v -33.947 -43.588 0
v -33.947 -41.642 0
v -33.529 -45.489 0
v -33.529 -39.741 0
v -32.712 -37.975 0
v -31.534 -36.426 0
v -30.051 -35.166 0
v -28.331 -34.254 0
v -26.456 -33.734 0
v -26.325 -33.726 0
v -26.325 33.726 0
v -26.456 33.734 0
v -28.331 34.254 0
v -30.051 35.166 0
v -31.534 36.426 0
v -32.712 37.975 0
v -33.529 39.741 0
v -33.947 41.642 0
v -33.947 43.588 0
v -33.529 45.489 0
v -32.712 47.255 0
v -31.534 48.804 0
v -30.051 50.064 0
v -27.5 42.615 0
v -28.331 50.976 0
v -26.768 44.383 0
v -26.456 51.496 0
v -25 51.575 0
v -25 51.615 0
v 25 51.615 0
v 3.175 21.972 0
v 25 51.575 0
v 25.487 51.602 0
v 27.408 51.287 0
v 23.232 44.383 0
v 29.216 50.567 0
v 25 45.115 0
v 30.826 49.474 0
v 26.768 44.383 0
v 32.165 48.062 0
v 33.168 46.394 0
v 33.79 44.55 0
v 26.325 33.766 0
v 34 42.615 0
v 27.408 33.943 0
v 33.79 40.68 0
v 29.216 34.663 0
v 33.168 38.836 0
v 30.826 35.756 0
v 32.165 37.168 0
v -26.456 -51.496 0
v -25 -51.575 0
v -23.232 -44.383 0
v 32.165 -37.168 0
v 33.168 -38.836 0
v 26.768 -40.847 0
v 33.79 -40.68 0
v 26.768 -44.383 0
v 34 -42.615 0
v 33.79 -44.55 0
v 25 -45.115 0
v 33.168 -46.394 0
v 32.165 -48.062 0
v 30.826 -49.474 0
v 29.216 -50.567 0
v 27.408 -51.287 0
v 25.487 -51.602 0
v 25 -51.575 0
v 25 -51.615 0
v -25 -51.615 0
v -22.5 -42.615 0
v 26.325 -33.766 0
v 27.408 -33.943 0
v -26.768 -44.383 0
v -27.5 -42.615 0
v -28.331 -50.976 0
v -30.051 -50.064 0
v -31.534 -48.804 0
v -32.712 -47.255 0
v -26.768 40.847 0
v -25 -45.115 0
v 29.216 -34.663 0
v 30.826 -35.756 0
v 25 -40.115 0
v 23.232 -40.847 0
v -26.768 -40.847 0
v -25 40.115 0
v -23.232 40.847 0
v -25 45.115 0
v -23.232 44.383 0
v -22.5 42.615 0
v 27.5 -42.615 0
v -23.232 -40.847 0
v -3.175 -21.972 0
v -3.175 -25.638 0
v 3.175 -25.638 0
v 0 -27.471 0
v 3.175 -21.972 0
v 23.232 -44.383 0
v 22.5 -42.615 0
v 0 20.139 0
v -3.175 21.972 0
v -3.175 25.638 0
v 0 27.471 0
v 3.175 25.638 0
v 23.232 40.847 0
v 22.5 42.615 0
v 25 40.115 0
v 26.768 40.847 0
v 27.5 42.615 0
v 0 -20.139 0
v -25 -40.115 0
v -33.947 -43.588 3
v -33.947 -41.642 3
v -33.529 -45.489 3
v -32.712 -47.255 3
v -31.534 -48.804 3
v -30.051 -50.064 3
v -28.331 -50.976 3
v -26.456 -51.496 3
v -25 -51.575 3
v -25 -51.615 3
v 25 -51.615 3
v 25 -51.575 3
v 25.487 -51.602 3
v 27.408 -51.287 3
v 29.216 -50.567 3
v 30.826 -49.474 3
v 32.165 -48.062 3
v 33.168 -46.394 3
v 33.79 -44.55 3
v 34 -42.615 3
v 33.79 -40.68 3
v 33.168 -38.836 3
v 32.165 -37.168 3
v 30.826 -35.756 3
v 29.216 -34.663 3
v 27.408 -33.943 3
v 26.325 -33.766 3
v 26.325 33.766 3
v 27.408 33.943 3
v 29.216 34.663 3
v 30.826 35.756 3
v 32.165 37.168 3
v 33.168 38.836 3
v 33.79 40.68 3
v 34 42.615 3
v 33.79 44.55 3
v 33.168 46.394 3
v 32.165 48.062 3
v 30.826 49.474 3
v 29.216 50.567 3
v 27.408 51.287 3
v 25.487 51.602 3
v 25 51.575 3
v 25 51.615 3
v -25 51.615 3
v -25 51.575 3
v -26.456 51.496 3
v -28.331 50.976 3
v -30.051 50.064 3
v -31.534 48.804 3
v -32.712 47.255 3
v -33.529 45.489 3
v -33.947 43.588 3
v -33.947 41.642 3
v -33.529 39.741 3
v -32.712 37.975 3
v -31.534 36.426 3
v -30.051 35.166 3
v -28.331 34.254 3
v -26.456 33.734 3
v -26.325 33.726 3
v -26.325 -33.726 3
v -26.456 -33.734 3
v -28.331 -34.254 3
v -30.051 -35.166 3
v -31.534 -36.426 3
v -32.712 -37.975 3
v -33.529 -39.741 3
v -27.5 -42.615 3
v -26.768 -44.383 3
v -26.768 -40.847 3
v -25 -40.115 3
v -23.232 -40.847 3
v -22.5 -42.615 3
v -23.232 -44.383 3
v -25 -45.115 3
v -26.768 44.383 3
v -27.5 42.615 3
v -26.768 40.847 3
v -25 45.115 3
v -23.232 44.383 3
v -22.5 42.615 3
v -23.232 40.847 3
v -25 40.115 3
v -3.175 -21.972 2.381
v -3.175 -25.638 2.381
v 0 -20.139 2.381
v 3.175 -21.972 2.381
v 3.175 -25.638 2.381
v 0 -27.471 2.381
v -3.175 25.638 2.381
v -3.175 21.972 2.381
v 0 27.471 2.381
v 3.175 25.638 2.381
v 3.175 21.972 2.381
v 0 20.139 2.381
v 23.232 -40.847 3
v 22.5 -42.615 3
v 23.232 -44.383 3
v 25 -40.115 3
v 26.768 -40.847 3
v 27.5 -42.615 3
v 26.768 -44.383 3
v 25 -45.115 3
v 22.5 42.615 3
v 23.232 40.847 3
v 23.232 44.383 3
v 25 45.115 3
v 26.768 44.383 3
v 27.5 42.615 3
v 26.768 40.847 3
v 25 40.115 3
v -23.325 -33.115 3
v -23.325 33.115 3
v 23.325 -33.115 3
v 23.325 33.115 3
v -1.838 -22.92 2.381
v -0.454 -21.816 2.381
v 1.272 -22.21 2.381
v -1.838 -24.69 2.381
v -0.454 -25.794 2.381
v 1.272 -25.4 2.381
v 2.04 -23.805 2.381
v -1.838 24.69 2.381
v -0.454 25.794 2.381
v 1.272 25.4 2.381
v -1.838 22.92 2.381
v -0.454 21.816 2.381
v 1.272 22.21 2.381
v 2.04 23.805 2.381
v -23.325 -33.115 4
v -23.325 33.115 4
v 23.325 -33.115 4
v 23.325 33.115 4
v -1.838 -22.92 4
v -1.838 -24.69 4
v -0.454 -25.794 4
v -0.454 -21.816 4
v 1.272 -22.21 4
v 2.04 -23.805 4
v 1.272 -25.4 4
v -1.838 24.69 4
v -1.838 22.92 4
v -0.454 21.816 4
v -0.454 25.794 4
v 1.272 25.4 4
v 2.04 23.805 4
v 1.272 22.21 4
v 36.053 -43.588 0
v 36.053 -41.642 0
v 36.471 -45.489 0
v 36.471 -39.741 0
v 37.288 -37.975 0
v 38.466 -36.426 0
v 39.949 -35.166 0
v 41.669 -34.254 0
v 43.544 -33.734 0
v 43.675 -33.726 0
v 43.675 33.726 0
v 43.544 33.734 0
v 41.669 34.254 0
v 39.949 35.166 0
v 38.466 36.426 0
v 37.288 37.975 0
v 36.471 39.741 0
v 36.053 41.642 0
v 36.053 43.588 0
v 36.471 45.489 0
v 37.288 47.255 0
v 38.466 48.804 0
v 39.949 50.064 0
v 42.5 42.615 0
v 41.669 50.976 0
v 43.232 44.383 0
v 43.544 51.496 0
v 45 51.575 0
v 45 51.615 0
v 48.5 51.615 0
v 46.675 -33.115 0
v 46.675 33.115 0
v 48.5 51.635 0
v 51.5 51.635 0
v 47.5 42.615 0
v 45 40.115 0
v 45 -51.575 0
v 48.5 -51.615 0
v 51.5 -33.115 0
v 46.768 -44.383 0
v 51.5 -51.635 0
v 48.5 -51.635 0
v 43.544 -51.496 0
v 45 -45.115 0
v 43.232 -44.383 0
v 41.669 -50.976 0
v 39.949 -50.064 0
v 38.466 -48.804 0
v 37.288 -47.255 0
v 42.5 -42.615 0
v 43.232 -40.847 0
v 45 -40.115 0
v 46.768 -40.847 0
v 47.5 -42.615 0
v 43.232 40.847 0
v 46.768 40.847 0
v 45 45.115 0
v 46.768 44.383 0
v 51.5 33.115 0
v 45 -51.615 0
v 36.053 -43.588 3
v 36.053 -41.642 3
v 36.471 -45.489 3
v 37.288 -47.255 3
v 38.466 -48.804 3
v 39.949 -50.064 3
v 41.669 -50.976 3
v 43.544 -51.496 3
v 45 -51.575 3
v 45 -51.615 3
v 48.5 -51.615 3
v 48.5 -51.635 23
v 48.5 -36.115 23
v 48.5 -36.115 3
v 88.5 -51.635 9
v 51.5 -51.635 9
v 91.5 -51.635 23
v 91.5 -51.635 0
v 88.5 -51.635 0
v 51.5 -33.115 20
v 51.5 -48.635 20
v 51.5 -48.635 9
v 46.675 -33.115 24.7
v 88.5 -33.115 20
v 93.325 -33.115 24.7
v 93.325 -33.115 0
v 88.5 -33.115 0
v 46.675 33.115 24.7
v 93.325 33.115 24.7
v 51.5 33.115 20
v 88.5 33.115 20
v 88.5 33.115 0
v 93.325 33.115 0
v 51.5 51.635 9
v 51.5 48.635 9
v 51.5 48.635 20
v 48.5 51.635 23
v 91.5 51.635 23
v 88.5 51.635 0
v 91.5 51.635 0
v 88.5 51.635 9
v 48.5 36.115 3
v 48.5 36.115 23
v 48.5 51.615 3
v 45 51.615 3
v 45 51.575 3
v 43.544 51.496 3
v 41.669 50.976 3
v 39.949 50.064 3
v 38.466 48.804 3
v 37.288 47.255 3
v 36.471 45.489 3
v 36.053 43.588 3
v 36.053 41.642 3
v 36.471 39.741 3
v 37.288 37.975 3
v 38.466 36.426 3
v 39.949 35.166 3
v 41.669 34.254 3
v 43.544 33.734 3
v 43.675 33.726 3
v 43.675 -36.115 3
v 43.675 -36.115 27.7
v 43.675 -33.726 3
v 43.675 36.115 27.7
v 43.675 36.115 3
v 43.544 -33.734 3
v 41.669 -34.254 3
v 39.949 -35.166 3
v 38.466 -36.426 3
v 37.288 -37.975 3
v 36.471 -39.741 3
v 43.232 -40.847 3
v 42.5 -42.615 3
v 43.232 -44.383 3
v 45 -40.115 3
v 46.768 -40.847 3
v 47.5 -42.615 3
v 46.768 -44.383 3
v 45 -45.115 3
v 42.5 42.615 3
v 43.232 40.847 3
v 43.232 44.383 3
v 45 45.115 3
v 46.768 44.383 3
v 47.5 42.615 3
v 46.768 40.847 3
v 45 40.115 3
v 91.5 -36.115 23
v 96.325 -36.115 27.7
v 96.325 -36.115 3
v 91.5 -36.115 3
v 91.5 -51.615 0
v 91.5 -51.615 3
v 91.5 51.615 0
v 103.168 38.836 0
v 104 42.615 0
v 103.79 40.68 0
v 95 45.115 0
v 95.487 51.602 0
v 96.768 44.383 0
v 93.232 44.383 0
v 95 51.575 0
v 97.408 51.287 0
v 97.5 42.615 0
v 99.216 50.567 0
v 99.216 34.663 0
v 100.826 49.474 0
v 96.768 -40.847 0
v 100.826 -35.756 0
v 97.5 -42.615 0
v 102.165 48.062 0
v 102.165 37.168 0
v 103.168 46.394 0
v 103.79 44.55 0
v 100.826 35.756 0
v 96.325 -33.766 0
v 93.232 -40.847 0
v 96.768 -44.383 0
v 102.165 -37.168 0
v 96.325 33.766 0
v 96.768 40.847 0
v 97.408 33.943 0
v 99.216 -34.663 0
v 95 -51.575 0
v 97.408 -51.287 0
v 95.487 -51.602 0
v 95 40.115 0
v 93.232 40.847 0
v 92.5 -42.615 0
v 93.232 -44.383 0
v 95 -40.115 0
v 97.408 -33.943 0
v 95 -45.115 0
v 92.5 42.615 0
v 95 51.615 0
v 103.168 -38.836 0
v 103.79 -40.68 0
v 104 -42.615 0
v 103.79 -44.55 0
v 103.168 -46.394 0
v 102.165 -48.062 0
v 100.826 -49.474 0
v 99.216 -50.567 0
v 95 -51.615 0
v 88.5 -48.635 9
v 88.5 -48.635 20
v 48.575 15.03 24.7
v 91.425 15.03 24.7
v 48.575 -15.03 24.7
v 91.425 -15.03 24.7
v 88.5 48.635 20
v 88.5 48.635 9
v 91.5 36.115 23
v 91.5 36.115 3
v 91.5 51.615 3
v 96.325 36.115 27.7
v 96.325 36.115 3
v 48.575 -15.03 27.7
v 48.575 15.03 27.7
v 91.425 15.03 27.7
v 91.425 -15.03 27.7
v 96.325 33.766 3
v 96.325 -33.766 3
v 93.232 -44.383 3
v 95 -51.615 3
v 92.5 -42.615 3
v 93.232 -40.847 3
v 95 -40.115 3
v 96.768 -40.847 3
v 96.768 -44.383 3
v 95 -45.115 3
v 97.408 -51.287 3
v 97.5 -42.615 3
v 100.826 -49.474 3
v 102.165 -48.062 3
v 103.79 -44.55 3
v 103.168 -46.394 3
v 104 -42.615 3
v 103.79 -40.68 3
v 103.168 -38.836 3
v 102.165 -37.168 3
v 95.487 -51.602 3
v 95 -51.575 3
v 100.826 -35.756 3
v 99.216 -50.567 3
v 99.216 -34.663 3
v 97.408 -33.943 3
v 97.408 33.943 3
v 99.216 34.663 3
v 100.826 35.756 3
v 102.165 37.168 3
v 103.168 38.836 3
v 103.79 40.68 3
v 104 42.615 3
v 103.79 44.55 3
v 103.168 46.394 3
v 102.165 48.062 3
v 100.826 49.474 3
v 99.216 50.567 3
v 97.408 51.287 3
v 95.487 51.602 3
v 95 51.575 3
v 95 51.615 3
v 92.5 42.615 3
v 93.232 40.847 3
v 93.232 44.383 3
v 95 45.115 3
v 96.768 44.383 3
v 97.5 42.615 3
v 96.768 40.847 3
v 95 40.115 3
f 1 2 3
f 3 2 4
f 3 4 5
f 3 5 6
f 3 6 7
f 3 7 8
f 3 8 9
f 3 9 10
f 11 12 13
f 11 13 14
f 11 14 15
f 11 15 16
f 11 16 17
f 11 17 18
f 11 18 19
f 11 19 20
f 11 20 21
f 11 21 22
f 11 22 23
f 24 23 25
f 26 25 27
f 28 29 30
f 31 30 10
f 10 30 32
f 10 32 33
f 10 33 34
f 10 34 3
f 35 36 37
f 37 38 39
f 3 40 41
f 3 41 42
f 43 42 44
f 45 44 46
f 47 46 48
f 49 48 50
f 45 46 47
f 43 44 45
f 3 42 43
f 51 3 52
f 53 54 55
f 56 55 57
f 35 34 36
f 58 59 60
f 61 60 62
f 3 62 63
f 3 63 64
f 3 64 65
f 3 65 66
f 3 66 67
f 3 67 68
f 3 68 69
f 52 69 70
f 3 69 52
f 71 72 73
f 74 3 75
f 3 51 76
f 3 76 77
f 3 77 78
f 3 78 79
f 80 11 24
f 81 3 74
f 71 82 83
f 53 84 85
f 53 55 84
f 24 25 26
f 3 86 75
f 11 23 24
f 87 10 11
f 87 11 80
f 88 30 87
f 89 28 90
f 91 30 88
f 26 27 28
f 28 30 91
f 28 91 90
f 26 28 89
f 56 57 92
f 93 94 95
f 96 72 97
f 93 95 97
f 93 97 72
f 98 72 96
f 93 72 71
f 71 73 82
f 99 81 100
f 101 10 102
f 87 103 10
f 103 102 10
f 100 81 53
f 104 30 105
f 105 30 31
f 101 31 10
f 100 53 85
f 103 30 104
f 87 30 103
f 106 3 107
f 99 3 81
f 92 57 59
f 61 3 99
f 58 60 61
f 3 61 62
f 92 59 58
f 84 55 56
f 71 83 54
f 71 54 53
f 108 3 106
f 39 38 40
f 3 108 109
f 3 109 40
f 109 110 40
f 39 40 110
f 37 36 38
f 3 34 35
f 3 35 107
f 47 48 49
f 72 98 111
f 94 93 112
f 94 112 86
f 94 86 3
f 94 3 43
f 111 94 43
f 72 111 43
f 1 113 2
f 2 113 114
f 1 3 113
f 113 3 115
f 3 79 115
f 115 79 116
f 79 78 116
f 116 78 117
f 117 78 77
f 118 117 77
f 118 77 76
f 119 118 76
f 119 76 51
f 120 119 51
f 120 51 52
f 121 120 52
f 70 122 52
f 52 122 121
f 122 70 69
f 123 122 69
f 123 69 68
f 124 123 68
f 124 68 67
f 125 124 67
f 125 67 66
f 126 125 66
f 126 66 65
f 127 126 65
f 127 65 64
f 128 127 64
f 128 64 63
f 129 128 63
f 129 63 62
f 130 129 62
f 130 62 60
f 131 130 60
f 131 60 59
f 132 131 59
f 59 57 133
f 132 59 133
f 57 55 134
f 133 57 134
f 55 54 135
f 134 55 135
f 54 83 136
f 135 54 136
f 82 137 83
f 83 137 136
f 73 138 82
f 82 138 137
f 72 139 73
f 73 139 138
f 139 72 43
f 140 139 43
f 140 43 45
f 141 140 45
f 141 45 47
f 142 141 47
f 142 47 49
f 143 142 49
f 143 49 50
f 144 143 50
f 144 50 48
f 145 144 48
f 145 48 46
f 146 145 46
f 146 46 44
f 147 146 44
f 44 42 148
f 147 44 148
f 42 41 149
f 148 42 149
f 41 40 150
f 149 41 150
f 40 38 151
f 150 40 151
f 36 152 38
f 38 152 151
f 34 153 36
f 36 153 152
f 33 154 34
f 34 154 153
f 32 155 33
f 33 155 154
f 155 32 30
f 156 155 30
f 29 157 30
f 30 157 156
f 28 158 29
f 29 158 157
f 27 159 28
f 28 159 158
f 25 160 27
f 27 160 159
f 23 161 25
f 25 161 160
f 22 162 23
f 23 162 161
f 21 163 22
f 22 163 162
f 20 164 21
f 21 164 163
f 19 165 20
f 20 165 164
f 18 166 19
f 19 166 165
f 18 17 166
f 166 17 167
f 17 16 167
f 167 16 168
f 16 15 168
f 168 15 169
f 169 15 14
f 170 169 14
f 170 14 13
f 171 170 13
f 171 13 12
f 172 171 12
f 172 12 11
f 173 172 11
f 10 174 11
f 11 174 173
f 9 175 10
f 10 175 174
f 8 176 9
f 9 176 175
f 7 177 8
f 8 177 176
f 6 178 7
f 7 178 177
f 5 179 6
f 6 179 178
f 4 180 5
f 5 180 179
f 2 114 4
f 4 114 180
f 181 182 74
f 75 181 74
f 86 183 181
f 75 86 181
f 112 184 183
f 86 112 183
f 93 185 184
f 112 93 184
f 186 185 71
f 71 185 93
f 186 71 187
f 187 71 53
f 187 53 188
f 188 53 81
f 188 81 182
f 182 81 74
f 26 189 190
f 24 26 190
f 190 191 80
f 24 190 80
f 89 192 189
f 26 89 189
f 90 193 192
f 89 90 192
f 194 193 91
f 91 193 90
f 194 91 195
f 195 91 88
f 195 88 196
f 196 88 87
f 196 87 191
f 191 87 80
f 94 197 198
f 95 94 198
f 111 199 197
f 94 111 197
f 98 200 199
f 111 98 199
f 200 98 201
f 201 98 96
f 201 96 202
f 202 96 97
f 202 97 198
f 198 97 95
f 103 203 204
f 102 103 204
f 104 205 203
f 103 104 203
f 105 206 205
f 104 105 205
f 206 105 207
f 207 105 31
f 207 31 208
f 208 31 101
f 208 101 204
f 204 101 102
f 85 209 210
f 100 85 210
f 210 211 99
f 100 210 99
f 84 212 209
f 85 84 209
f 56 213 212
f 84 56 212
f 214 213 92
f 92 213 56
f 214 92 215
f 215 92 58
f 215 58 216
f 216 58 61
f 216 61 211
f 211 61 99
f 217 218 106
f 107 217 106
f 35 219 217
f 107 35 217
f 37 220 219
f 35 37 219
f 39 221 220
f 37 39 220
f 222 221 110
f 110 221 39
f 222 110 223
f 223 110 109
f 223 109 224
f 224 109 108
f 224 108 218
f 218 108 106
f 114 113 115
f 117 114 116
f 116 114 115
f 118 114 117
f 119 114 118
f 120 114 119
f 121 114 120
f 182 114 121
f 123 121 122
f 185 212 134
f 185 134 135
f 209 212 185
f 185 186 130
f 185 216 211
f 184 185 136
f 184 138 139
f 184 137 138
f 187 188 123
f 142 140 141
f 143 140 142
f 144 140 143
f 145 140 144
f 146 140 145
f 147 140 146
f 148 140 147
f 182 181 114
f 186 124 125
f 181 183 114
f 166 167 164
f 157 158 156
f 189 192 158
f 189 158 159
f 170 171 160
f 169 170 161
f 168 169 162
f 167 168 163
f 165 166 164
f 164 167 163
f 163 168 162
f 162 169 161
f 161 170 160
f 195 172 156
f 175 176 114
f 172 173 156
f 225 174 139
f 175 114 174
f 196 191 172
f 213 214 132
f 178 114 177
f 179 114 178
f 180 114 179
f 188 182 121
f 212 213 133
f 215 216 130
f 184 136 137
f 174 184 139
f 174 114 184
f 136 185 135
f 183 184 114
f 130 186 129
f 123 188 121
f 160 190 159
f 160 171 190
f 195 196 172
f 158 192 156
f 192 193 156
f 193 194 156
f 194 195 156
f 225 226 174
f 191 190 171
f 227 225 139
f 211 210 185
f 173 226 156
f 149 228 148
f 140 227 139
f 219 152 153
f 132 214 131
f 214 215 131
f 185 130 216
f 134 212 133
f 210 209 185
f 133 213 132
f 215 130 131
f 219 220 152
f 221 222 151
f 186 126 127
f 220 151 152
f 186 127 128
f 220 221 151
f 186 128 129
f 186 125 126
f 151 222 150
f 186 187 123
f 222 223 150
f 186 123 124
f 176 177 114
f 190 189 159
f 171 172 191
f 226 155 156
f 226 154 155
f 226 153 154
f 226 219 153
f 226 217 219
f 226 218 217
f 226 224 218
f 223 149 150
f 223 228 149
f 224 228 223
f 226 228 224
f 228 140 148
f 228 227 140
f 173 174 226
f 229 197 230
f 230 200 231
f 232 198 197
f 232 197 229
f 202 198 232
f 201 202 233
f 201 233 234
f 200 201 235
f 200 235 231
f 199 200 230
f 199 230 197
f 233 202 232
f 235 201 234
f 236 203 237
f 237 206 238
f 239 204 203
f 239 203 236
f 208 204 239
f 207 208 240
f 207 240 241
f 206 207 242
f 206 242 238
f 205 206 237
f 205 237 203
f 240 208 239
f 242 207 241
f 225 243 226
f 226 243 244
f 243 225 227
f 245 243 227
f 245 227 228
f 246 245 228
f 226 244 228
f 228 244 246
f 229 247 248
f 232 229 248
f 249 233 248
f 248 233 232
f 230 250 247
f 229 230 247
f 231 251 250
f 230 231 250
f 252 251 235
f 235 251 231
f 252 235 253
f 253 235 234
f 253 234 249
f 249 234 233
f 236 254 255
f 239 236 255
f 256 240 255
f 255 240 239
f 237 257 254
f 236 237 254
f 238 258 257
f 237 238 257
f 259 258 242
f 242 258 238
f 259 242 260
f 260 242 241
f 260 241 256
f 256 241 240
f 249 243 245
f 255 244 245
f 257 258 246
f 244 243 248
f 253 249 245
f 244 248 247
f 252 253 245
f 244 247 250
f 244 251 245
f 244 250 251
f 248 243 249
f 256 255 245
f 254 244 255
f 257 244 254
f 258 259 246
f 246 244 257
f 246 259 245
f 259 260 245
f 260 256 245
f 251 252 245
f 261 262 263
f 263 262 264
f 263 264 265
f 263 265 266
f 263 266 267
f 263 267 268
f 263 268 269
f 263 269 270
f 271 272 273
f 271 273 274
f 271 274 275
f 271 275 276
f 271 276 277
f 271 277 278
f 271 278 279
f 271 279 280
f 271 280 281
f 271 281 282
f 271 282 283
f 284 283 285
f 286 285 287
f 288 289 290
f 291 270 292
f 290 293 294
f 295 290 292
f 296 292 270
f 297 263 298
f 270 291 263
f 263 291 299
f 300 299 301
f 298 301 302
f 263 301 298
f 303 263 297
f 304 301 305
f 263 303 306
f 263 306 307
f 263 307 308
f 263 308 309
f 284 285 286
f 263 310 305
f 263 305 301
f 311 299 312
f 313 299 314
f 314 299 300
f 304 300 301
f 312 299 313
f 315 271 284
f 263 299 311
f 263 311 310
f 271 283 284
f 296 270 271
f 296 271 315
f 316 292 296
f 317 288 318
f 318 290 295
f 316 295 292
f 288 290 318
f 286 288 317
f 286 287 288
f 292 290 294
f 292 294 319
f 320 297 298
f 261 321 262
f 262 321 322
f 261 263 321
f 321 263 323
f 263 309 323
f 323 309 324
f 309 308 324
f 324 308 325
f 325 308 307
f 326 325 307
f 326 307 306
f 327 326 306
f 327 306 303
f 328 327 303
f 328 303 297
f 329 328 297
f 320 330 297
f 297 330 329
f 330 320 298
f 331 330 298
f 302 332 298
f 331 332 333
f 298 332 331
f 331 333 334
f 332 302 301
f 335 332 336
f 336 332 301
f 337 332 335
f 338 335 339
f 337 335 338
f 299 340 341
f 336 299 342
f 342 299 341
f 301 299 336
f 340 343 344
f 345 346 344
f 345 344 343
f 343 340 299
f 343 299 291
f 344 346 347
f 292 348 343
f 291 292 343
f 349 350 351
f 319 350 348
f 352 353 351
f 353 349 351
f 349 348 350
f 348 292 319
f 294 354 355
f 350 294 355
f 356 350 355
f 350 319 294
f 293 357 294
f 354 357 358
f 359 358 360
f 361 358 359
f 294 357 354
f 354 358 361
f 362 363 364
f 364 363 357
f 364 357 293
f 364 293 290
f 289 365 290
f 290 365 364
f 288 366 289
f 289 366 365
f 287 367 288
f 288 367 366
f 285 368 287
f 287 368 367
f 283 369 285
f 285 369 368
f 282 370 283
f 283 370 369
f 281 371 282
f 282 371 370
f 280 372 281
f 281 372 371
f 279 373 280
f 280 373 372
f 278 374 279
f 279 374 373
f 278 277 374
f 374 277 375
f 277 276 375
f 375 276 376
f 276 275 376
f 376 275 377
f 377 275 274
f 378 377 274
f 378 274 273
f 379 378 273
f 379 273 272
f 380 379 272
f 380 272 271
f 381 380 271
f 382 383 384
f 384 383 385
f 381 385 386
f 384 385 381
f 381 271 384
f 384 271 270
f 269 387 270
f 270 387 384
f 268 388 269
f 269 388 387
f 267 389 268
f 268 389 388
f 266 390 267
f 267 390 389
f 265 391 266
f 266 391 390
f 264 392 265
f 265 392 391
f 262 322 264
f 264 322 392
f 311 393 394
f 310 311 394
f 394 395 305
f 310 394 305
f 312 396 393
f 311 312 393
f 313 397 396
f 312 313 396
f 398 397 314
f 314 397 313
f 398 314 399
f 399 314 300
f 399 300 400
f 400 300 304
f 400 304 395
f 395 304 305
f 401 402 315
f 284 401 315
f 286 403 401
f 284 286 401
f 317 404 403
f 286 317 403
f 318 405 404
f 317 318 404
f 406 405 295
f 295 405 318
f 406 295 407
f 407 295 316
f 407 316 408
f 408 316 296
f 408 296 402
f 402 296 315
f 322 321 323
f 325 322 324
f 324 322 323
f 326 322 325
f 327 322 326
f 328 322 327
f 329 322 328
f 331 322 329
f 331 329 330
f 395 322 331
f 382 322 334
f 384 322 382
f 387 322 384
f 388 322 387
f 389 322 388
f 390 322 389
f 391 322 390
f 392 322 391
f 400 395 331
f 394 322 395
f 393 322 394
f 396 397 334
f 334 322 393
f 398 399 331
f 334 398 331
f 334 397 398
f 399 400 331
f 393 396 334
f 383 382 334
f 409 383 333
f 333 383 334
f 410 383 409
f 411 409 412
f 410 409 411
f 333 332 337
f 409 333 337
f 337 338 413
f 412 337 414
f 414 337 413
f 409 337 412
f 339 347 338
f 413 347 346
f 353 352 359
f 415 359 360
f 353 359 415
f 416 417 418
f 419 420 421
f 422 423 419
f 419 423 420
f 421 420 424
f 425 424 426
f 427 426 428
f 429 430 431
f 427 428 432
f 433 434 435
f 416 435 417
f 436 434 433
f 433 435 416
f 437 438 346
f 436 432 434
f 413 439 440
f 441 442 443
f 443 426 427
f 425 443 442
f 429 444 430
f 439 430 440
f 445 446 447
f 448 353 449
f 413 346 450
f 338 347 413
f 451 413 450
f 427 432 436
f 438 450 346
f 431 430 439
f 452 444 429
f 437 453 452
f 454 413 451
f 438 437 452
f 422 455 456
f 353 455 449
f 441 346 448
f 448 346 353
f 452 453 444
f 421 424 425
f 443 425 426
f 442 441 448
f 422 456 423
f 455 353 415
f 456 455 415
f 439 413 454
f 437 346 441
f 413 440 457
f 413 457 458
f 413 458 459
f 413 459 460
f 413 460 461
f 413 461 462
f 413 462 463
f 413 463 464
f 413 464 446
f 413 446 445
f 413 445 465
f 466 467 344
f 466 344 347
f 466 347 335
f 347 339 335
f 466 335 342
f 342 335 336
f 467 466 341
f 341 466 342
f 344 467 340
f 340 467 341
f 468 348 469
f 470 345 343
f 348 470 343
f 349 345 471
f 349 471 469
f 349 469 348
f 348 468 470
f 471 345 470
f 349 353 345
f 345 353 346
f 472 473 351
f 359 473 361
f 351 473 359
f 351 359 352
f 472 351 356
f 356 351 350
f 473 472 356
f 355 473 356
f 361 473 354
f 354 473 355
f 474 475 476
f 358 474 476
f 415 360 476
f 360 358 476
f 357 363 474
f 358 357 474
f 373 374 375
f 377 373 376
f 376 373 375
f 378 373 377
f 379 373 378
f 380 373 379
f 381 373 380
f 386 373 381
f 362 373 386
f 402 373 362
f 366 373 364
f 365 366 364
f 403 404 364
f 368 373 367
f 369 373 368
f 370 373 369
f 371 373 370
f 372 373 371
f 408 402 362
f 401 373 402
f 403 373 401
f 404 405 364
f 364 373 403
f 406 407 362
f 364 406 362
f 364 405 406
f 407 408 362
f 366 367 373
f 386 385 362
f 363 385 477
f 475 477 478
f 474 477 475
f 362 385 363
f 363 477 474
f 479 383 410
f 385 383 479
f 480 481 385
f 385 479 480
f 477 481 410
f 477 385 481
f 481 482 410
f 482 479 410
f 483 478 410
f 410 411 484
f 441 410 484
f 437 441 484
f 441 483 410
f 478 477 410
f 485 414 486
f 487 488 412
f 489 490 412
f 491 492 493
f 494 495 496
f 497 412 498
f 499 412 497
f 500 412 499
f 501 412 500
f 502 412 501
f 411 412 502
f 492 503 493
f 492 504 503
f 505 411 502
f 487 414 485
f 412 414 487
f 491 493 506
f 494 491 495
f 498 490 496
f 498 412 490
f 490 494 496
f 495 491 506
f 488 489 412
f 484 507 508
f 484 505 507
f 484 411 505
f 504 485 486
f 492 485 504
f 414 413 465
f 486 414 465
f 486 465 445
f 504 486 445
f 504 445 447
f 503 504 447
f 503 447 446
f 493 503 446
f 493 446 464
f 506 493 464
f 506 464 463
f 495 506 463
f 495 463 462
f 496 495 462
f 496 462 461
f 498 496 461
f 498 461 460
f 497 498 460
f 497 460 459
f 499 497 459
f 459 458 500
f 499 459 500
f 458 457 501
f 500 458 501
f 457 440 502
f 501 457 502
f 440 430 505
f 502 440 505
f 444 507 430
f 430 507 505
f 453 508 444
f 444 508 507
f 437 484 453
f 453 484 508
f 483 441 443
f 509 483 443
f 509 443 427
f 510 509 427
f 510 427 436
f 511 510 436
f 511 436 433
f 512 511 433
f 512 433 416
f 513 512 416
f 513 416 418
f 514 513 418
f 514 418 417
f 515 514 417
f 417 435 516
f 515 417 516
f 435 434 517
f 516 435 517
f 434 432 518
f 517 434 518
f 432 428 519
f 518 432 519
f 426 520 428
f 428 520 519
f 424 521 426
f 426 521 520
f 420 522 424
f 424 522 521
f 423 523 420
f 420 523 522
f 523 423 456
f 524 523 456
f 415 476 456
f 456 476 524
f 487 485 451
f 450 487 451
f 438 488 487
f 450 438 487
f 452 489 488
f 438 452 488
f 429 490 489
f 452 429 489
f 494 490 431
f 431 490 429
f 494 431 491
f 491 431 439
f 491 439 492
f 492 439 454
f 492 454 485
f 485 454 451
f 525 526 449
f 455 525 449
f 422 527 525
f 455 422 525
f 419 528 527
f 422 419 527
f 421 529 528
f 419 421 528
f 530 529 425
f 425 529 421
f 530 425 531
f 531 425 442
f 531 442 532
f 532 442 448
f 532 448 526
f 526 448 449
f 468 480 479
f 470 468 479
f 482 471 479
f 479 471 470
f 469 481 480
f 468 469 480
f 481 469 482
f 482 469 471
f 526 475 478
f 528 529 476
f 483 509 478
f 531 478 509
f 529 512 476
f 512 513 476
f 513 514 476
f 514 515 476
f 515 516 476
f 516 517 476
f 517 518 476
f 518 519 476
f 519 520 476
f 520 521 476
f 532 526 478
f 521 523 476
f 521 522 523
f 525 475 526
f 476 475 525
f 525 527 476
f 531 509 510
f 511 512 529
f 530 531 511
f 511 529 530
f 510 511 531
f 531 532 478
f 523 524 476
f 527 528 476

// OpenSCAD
mount_t = 3;
mount_gap = .75;
mount_lipinset = 1;


ssr_w=45.15;
ssr_l=60.27;
ssr_t=22.95;
ssr_lip_t=2.54;
ssr_lip_w=2.23;
ssr_slot_width=10;
ssr_slot_depth = 11.33;
ssr_slot_bottom_thickness=4.04;
ssr_hole_diam = 4.08;
ssr_hole_diam2 = 6.4;
ssr_indent_l = 30.06;
ssr_indent_w = 42.85;
ssr_indent_t = 0.96;
ssr_posthole_in = 3.2;
ssr_posthole_w = 11.08;
ssr_posthole_l = 14.03;
ssr_posthole_t = 8.55;


//this is set fo a #4 machine screw.
nutTrapWidth=1/4*25.4;
nutTrapHieight=3/32*25.4;

mount_h_d=5;
mount_head_clear = 4;
mount_dist=50;
mount_round=9;

wire_hole_w = mount_dist-2*(mount_head_clear+mount_h_d/2);
wire_hole_d = 18.5;
wire_hole_h1 = 9;
wire_hole_h2 = 11;

module ssr(){


	difference(){
		union(){
			//body
			color("gray")
			translate([0,0,ssr_t/2])
			cube([ssr_w,ssr_l,ssr_t], center=true);
			//bottom plate
			color("silver")
			translate([0,0,ssr_lip_t/2])
			cube([ssr_w,ssr_l+2*ssr_lip_w,ssr_lip_t], center=true);
		}

		for (y=[-1,1]){
			//screw slot
			translate([0,y*(ssr_l/2-ssr_slot_depth+ssr_slot_width/2),ssr_t/2+ssr_slot_bottom_thickness])
			cylinder(r=ssr_slot_width/2, h=ssr_t, center=true);
		
			translate([0,y*(ssr_l/2),ssr_t/2+ssr_slot_bottom_thickness])
			cube([ssr_slot_width, 2*(ssr_slot_depth-ssr_slot_width/2), ssr_t], center=true);

			//screw hole
			translate([0,y*(ssr_l/2-ssr_slot_depth+ssr_slot_width/2),0])
			cylinder(r=ssr_hole_diam/2, h=ssr_t*3, center=true);
		}

		//label and light indent
		translate([0,0,ssr_t])
		cube([ssr_indent_w,ssr_indent_l,ssr_indent_t*2], center=true);

		//binding post holes
		for (x=[-1,1])
		for (y=[-1,1])
			translate([x*(ssr_w/2-ssr_posthole_w/2-ssr_posthole_in),y*ssr_l/2,ssr_t])
			cube([ssr_posthole_w,ssr_posthole_l*2,ssr_posthole_t*2], center=true);
	}
}



module nut(w, h){
	translate([0,0,h/2])
	for (i=[1:3])
		rotate([0,0,60*i])
		cube([w, w/sqrt(3), h], center=true);
}

module mount_plate(){

	difference(){
		union(){
			//smaller rectangle
			translate([0,0,(mount_t+mount_lipinset)/2])
			cube([ssr_w+2*(mount_gap),ssr_l+2*ssr_lip_w+2*(mount_gap),mount_t+mount_lipinset], center=true);

			//big rectangle
			translate([0,0,mount_t/2])
			cube([ssr_w+2*(mount_t+mount_gap),ssr_l+2*ssr_lip_w+2*(mount_t+mount_gap),mount_t], center=true);

			//mounting tabs
			for (y=[-1,1]){
				translate([0,y*(ssr_l/2+ssr_lip_w+mount_gap+mount_h_d/2+mount_t+mount_head_clear),mount_t/2])
				cube([mount_dist,2*mount_round,mount_t], center=true);
				for (x=[-mount_dist/2,mount_dist/2])
					translate([x,y*(ssr_l/2+ssr_lip_w+mount_gap+mount_h_d/2+mount_t+mount_head_clear),0])
					cylinder(r=mount_round, h=mount_t);
			}
		}
	
		//ssr screw hole
		for (y=[-1,1]){
			translate([0,y*(ssr_l/2-ssr_slot_depth+ssr_slot_width/2),0]){
				cylinder(r=ssr_hole_diam/2, h=(mount_t+mount_lipinset)*3, center=true);
				//nut trap
				translate([0,0,-1])
				nut(nutTrapWidth, nutTrapHieight+1);
			}

		//mount screw hole
		for (y=[-1,1])
		for (x=[-mount_dist/2,mount_dist/2])
			translate([x,y*(ssr_l/2+ssr_lip_w+mount_gap+mount_h_d/2+mount_t+mount_head_clear),0])
			cylinder(r=mount_h_d/2, h=mount_t*3, center=true);


		}

	}
}


module mount_cover(){
	difference(){
		union(){
			//big rectangle
			translate([0,0,(mount_lipinset+ssr_t+mount_gap+mount_t)/2])
			cube([ssr_w+2*(mount_t+mount_gap),ssr_l+2*ssr_lip_w+2*(mount_t+mount_gap),mount_lipinset+ssr_t+mount_gap+mount_t], center=true);

			//wire covers
			translate([0,0,(wire_hole_h1+wire_hole_h2+mount_t)/2])
			cube([wire_hole_w+2*mount_t, ssr_l+2*wire_hole_d+2*mount_t, wire_hole_h1+wire_hole_h2+mount_t], center=true);

			//mounting tabs
			for (y=[-1,1]){
				translate([0,y*(ssr_l/2+ssr_lip_w+mount_gap+mount_h_d/2+mount_t+mount_head_clear),mount_t/2])
				cube([mount_dist,2*mount_round,mount_t], center=true);
				for (x=[-mount_dist/2,mount_dist/2])
					translate([x,y*(ssr_l/2+ssr_lip_w+mount_gap+mount_h_d/2+mount_t+mount_head_clear),0])
					cylinder(r=mount_round, h=mount_t);
			}

		}
		//smaller rectangle
		translate([0,0,(mount_lipinset+ssr_t+mount_gap)/2-1])
		cube([ssr_w+2*(mount_gap),ssr_l+2*ssr_lip_w+2*(mount_gap),mount_lipinset+ssr_t+mount_gap+2], center=true);

		//label hole
		translate([0,0,mount_lipinset+ssr_t+mount_gap+mount_t])
		cube([ssr_indent_w,ssr_indent_l,mount_t*3], center=true);

		//binding post holes
		translate([0,0,(wire_hole_h1+wire_hole_h2)/2-1])
		cube([wire_hole_w, ssr_l+2*wire_hole_d, wire_hole_h1+wire_hole_h2+2], center=true);
		translate([0,0,wire_hole_h1/2-1])
		cube([wire_hole_w, ssr_l+2*wire_hole_d+ 2*mount_round+1, wire_hole_h1+2], center=true);


		//mount screw hole
		for (y=[-1,1])
		for (x=[-mount_dist/2,mount_dist/2])
			translate([x,y*(ssr_l/2+ssr_lip_w+mount_gap+mount_h_d/2+mount_t+mount_head_clear),0])
			cylinder(r=mount_h_d/2, h=mount_t*3, center=true);

	}
}

module display_ssr(color="orange"){

ssr();

	color(color)
	translate([0,0,-mount_t-mount_lipinset])
	mount_plate();

	color(color)
	translate([0,0,-mount_lipinset])
	mount_cover();

}

module print(){
	mount_plate();
	translate([mount_dist + 2* mount_round+2,0,0])
	mount_cover();
}

//display_ssr();
print();
